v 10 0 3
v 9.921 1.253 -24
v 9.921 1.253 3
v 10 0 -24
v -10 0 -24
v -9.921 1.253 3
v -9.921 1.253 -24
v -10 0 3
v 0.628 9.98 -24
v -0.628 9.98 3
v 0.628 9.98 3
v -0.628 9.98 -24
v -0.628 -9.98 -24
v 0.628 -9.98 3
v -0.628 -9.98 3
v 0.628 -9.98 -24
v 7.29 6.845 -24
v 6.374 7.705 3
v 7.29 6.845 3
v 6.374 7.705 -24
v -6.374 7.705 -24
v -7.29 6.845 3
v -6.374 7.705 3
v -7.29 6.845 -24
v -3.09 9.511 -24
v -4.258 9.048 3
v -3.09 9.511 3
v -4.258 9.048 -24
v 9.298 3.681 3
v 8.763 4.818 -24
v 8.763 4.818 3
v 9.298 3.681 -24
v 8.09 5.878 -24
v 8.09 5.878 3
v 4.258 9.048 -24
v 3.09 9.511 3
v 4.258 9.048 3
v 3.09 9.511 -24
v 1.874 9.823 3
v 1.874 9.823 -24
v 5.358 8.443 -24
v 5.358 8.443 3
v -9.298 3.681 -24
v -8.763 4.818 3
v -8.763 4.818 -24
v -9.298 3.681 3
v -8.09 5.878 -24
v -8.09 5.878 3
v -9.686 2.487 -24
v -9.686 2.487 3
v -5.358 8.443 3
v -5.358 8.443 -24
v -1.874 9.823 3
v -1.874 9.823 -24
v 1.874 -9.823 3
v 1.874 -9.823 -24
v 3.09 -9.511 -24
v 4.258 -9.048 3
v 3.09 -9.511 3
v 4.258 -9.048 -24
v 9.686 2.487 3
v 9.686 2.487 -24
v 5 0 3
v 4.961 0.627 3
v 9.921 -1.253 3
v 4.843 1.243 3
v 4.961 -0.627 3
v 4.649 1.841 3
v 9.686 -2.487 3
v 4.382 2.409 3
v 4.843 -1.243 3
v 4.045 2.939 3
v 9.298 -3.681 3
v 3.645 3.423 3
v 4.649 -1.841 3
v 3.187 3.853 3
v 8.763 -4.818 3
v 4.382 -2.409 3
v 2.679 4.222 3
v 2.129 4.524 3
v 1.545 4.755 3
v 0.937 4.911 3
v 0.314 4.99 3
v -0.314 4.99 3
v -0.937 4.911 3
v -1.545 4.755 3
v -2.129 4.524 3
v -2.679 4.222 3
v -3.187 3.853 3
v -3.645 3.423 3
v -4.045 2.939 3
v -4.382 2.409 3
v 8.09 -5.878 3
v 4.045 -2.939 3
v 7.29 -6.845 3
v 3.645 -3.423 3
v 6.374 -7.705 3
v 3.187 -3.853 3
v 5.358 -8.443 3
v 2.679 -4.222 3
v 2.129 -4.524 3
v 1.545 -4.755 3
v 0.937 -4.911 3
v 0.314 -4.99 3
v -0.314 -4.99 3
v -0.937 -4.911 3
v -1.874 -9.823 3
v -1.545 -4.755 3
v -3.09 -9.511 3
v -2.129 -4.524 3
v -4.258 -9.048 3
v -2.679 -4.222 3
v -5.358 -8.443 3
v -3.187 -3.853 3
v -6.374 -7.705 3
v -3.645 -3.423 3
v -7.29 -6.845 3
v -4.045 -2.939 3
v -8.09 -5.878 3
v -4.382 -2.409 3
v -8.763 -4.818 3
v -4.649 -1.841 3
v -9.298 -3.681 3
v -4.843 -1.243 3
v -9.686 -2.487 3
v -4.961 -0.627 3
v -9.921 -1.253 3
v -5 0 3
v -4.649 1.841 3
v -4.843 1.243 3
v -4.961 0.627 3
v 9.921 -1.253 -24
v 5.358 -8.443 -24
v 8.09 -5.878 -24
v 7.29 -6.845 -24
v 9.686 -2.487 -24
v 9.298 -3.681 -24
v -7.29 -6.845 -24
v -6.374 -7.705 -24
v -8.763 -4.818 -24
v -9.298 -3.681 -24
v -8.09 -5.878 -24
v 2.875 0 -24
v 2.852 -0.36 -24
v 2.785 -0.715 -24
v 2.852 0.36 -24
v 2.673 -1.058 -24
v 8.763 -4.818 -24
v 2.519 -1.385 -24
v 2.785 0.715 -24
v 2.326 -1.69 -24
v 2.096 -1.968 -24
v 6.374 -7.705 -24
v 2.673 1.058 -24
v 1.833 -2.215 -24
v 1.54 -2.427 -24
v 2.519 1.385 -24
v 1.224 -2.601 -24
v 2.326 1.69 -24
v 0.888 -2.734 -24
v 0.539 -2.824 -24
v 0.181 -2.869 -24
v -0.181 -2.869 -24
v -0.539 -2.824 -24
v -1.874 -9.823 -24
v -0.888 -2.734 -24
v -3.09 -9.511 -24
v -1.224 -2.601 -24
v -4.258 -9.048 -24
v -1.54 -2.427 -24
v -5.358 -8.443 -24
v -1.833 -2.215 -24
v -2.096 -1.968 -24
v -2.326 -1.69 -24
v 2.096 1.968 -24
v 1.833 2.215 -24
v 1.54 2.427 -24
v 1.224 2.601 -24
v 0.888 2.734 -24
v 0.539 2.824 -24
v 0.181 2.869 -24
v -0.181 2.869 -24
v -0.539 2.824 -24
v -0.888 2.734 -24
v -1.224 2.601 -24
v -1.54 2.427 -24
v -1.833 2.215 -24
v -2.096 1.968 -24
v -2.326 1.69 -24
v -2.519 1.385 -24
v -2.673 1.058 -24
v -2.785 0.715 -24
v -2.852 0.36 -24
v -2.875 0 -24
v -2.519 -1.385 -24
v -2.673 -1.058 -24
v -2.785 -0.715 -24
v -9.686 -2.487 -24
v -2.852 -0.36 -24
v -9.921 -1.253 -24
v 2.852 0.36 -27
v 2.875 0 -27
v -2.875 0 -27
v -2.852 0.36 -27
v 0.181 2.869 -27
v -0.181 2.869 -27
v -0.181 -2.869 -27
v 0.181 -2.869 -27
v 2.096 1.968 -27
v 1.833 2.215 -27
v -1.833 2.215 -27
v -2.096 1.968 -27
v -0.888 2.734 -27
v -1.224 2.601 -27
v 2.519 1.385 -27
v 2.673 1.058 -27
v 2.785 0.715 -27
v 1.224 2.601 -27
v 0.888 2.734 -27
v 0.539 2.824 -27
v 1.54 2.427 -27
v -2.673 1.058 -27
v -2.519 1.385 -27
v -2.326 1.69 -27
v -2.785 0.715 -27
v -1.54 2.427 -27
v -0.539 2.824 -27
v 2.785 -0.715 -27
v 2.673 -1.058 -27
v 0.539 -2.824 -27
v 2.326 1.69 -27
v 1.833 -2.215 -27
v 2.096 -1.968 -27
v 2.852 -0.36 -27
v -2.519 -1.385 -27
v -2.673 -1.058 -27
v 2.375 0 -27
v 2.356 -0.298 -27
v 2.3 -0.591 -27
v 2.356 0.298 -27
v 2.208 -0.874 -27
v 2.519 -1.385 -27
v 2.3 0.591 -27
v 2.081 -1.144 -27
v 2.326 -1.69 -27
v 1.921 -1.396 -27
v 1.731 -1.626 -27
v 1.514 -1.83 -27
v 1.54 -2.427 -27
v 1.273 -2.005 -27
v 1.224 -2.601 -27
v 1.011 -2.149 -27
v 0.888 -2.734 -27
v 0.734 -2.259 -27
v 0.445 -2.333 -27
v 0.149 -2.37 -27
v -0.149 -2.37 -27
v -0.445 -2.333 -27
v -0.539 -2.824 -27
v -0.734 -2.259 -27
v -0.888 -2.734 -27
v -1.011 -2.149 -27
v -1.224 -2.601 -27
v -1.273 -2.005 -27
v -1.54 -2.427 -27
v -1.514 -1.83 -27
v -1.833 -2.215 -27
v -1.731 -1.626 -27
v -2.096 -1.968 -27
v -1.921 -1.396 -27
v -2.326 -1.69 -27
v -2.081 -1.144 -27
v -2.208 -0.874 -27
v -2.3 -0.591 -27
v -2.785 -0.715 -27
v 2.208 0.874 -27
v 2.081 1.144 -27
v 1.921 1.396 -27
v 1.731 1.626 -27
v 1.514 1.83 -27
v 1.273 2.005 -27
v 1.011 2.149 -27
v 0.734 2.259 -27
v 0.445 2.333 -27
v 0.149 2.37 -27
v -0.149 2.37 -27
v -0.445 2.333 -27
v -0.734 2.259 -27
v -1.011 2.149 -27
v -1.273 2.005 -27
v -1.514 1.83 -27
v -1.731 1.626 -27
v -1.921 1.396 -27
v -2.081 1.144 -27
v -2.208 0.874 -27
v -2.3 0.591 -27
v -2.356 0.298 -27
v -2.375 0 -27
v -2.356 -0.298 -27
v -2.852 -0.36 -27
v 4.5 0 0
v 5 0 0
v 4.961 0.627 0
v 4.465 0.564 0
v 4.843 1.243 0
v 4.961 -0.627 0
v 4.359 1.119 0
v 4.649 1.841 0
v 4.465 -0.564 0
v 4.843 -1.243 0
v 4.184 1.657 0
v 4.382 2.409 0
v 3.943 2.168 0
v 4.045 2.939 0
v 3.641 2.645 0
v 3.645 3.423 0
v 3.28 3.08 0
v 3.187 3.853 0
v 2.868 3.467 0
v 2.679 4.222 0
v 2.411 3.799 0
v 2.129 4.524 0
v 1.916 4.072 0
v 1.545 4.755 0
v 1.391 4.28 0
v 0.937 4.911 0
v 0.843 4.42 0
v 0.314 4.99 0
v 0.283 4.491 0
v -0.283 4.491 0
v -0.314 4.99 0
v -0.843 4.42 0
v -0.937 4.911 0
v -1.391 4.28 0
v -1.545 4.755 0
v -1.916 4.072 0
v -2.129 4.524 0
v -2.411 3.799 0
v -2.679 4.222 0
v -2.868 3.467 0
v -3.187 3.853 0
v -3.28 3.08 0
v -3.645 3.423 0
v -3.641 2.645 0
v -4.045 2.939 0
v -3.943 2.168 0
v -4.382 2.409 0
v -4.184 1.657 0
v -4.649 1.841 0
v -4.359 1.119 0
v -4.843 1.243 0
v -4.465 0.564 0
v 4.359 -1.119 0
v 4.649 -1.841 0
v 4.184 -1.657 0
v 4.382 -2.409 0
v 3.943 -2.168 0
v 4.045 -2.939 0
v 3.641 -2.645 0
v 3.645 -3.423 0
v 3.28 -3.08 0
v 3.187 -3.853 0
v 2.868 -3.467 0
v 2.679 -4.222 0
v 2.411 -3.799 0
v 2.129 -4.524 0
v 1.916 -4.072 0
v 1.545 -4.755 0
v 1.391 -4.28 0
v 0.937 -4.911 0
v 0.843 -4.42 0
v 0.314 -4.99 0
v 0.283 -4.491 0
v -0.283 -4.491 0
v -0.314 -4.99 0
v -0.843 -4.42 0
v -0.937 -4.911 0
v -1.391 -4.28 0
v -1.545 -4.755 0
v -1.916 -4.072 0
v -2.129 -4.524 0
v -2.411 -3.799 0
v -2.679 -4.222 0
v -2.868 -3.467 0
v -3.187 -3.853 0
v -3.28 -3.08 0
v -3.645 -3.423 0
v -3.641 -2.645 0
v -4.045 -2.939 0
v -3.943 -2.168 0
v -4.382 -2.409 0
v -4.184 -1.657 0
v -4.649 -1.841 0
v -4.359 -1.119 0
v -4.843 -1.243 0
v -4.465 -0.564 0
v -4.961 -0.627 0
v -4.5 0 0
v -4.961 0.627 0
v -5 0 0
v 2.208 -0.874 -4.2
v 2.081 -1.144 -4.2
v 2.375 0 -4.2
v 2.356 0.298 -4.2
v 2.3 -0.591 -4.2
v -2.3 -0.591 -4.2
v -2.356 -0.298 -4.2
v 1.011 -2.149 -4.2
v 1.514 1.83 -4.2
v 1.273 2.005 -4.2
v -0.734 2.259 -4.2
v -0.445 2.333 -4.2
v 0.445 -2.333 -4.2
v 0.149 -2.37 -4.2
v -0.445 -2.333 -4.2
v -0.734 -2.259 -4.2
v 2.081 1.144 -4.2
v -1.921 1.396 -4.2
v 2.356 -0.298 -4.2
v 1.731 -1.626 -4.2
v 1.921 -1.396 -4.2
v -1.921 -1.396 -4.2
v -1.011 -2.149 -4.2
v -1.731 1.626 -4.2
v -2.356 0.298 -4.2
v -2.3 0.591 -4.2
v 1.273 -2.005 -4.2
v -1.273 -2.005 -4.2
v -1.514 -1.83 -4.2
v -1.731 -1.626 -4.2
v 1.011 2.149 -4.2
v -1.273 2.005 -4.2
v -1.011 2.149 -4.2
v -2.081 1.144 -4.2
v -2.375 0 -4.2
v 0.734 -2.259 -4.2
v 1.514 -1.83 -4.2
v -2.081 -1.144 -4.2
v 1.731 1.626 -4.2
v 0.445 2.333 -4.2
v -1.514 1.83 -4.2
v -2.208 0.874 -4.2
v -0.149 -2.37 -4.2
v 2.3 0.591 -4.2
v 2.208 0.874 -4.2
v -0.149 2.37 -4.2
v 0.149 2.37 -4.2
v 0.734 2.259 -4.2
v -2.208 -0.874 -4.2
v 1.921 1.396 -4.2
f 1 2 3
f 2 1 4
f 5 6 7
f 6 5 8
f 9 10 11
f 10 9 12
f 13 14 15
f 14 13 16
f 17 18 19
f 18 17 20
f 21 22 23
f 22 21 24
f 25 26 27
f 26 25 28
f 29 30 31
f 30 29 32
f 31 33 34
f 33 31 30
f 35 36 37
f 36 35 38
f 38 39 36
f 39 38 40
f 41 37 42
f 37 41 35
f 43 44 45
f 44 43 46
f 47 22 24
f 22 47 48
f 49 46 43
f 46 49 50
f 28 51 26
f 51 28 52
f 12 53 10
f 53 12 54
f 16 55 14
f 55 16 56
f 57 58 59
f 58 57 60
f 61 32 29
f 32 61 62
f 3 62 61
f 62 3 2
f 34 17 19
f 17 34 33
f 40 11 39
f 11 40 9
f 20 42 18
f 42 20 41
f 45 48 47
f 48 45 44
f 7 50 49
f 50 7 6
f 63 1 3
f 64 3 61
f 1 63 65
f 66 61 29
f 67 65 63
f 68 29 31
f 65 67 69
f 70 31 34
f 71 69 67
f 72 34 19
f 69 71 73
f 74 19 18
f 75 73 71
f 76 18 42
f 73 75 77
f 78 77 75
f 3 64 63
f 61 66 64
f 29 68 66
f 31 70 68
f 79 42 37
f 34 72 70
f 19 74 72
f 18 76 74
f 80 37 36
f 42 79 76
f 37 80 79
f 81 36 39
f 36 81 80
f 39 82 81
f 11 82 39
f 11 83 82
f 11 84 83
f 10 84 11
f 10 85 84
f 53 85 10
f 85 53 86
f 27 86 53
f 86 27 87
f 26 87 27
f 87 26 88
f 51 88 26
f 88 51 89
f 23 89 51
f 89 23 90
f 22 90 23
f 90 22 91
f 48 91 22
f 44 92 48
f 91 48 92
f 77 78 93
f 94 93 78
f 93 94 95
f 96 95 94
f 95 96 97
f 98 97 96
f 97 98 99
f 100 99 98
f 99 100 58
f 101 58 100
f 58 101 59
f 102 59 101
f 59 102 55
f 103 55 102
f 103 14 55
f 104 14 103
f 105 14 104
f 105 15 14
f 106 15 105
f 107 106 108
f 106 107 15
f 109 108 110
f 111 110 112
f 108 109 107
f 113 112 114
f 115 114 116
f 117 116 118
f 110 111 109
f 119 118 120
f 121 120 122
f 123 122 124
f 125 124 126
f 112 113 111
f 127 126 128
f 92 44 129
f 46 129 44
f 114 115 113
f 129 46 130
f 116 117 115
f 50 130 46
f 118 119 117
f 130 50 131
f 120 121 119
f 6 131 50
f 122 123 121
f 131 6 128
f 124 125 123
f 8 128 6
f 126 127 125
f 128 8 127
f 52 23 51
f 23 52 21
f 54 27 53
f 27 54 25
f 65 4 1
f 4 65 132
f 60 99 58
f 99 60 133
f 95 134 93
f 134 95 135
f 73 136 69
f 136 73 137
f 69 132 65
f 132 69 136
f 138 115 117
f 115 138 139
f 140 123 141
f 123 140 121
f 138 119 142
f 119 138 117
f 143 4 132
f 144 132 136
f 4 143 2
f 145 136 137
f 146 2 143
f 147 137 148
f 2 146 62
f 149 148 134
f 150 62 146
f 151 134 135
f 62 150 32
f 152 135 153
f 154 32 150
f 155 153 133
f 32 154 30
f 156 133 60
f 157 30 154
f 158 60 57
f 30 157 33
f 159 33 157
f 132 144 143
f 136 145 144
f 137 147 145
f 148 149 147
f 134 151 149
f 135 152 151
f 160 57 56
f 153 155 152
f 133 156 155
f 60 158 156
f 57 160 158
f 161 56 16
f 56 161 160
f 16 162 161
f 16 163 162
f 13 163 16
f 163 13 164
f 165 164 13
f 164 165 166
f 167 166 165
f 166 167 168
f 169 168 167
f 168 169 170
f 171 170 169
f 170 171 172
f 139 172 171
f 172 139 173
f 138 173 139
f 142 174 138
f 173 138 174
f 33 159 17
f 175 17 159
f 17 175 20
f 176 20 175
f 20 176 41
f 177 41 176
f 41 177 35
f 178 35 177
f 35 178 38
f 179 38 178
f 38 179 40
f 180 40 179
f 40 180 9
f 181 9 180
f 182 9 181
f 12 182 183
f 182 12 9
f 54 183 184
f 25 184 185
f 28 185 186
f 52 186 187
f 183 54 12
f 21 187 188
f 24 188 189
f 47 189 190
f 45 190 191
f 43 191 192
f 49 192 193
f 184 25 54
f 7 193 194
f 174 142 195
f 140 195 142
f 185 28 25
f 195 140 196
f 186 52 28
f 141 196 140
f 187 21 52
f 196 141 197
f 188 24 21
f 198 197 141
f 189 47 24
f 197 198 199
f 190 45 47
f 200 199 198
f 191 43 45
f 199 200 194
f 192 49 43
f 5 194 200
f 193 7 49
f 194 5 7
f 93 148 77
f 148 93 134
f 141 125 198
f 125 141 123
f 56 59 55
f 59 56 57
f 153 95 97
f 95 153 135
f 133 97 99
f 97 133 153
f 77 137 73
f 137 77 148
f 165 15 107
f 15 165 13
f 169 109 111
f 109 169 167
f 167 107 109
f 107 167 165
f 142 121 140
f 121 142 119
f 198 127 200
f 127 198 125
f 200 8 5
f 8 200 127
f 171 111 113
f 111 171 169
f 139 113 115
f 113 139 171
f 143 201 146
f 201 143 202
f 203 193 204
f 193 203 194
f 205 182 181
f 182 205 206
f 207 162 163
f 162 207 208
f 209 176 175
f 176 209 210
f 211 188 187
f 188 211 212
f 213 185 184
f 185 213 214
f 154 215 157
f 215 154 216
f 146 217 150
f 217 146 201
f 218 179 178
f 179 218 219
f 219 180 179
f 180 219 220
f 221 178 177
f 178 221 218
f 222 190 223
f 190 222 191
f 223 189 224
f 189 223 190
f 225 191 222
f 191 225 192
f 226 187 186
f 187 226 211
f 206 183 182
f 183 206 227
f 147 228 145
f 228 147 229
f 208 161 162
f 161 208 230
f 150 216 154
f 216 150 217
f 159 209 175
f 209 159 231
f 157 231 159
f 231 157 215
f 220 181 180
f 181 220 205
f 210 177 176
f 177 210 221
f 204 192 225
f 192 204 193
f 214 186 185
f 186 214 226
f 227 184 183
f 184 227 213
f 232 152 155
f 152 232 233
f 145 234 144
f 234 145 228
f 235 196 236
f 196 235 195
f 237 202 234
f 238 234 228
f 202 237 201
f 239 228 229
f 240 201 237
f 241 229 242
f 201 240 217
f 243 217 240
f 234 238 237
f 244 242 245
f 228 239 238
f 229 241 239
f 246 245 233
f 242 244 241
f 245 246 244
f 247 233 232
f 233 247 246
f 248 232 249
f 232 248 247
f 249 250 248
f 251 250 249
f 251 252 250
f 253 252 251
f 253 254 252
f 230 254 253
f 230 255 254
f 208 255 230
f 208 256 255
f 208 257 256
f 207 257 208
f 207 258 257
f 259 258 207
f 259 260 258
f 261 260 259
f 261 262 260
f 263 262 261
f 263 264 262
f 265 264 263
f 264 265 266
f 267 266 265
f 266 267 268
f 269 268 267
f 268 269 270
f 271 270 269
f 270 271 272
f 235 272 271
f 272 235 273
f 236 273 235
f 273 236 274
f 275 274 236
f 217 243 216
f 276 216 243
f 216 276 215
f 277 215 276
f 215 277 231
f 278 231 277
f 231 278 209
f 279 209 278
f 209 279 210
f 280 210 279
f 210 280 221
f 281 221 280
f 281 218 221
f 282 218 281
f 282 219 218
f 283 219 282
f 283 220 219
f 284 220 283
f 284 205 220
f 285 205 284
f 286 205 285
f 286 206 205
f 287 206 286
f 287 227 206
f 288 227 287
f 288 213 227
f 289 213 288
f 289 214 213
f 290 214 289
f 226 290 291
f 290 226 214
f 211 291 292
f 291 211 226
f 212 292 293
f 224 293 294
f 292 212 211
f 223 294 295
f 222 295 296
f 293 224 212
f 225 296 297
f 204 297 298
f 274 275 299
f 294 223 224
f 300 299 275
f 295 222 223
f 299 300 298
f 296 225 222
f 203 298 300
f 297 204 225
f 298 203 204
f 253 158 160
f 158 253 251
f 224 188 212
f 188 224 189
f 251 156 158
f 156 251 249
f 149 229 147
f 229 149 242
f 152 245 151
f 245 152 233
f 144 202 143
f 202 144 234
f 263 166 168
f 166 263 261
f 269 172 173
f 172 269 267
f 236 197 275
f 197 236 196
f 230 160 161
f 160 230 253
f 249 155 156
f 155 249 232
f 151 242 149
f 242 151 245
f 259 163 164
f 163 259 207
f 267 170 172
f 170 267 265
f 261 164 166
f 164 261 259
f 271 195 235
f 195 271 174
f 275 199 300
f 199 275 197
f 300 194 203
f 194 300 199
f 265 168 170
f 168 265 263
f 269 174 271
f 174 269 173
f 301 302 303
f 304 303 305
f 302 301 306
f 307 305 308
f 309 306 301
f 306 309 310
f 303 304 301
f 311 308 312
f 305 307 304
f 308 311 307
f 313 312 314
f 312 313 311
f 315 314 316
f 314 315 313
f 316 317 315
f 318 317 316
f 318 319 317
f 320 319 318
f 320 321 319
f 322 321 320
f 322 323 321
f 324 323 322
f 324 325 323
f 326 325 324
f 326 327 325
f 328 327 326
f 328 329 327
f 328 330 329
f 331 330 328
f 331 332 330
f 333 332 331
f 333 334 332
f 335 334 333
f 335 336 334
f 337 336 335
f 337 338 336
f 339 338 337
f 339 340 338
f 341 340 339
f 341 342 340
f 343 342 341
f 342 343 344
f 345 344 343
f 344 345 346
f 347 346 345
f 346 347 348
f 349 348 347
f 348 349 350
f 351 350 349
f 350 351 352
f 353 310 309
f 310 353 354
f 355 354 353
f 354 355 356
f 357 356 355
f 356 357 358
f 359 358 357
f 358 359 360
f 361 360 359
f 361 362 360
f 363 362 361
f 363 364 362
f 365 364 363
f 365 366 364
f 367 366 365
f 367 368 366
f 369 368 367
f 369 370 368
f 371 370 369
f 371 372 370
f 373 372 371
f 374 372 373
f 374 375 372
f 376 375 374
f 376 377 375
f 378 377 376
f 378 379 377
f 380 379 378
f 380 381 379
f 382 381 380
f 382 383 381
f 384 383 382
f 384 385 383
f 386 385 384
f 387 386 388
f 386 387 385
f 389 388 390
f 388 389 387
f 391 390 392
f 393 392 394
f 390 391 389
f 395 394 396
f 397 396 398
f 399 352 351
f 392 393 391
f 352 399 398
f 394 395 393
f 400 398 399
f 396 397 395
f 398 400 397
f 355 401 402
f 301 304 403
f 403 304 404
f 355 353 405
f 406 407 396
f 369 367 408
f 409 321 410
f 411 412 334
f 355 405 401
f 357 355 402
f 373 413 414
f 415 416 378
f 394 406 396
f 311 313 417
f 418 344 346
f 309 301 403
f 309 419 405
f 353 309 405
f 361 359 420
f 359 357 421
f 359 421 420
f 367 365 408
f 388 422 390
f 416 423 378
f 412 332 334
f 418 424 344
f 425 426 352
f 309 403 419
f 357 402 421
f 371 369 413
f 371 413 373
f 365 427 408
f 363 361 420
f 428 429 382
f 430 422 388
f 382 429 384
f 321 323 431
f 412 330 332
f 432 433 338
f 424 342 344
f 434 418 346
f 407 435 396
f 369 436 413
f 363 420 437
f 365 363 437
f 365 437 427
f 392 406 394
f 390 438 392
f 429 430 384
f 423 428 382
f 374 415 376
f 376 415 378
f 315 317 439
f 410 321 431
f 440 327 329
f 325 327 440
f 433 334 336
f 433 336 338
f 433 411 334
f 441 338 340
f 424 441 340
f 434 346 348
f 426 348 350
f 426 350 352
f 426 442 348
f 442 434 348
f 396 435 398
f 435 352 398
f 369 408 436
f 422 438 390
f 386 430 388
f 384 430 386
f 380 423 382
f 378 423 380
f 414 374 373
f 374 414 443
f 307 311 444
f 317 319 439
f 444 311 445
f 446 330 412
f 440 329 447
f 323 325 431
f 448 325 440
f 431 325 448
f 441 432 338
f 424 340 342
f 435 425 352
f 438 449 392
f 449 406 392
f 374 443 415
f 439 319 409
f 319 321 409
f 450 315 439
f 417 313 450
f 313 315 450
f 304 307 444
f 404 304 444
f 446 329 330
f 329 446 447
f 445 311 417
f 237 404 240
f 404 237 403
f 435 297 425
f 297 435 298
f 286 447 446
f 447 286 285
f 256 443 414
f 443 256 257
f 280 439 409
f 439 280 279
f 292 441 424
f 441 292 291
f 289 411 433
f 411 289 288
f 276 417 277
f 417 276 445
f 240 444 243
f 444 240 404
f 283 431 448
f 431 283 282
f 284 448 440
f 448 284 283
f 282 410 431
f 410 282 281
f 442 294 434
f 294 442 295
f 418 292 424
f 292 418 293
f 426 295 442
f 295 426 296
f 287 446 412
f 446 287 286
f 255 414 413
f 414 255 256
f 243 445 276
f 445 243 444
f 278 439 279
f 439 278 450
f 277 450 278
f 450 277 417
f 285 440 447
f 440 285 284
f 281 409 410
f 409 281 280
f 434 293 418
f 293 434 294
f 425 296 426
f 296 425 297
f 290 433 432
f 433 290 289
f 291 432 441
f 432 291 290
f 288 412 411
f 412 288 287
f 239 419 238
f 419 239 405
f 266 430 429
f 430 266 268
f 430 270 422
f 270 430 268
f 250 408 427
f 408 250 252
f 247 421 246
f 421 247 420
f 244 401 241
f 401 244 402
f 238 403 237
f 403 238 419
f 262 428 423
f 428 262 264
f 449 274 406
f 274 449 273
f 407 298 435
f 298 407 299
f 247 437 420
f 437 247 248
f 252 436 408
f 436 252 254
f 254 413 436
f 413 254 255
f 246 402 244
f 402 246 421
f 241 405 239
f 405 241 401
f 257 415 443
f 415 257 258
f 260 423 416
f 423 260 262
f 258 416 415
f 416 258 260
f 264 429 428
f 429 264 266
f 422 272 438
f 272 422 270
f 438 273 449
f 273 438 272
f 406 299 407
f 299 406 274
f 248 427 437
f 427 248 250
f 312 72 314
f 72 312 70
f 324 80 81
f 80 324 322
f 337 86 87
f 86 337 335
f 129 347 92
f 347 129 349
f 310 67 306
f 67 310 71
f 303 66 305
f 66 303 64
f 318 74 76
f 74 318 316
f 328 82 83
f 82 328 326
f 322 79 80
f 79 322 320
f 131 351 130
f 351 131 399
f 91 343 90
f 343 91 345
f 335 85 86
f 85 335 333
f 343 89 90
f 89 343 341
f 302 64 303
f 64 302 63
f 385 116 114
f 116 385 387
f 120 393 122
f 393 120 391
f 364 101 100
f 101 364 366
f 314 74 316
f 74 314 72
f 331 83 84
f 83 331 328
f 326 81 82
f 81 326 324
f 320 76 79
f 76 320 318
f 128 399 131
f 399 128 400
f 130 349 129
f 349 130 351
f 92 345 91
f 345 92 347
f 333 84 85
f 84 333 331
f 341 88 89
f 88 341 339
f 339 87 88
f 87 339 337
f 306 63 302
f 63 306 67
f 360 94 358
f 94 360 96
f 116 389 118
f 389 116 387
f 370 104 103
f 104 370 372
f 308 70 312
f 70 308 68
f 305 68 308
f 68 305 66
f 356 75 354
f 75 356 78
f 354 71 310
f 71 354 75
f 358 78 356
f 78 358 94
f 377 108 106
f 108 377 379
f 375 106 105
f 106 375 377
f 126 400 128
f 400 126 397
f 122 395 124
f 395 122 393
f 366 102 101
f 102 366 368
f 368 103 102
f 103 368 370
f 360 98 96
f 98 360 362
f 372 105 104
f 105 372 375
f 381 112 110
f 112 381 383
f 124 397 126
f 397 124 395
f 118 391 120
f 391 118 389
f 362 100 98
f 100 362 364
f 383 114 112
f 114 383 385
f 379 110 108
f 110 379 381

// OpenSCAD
$fn = 50;


difference() {
	union() {
		translate(v = [0, 0, -24.0000000000]) {
			cylinder(h = 27, r = 10.0000000000);
		}
		#translate(v = [0, 0, -27.0000000000]) {
			cylinder(h = 27, r = 2.8750000000);
		}
	}
	union() {
		translate(v = [0, 0, 0]) {
			rotate(a = [0, 0, 0]) {
				difference() {
					union() {
						translate(v = [0, 0, -27.0000000000]) {
							cylinder(h = 27, r = 2.2500000000);
						}
						translate(v = [0, 0, -4.2000000000]) {
							cylinder(h = 4.2000000000, r1 = 2.3750000000, r2 = 4.5000000000);
						}
						translate(v = [0, 0, -27.0000000000]) {
							cylinder(h = 27, r = 2.3750000000);
						}
						translate(v = [0, 0, -27.0000000000]) {
							cylinder(h = 27, r = 2.2500000000);
						}
					}
					union();
				}
			}
		}
		#cylinder(h = 3, r = 5.0000000000);
	}
}
